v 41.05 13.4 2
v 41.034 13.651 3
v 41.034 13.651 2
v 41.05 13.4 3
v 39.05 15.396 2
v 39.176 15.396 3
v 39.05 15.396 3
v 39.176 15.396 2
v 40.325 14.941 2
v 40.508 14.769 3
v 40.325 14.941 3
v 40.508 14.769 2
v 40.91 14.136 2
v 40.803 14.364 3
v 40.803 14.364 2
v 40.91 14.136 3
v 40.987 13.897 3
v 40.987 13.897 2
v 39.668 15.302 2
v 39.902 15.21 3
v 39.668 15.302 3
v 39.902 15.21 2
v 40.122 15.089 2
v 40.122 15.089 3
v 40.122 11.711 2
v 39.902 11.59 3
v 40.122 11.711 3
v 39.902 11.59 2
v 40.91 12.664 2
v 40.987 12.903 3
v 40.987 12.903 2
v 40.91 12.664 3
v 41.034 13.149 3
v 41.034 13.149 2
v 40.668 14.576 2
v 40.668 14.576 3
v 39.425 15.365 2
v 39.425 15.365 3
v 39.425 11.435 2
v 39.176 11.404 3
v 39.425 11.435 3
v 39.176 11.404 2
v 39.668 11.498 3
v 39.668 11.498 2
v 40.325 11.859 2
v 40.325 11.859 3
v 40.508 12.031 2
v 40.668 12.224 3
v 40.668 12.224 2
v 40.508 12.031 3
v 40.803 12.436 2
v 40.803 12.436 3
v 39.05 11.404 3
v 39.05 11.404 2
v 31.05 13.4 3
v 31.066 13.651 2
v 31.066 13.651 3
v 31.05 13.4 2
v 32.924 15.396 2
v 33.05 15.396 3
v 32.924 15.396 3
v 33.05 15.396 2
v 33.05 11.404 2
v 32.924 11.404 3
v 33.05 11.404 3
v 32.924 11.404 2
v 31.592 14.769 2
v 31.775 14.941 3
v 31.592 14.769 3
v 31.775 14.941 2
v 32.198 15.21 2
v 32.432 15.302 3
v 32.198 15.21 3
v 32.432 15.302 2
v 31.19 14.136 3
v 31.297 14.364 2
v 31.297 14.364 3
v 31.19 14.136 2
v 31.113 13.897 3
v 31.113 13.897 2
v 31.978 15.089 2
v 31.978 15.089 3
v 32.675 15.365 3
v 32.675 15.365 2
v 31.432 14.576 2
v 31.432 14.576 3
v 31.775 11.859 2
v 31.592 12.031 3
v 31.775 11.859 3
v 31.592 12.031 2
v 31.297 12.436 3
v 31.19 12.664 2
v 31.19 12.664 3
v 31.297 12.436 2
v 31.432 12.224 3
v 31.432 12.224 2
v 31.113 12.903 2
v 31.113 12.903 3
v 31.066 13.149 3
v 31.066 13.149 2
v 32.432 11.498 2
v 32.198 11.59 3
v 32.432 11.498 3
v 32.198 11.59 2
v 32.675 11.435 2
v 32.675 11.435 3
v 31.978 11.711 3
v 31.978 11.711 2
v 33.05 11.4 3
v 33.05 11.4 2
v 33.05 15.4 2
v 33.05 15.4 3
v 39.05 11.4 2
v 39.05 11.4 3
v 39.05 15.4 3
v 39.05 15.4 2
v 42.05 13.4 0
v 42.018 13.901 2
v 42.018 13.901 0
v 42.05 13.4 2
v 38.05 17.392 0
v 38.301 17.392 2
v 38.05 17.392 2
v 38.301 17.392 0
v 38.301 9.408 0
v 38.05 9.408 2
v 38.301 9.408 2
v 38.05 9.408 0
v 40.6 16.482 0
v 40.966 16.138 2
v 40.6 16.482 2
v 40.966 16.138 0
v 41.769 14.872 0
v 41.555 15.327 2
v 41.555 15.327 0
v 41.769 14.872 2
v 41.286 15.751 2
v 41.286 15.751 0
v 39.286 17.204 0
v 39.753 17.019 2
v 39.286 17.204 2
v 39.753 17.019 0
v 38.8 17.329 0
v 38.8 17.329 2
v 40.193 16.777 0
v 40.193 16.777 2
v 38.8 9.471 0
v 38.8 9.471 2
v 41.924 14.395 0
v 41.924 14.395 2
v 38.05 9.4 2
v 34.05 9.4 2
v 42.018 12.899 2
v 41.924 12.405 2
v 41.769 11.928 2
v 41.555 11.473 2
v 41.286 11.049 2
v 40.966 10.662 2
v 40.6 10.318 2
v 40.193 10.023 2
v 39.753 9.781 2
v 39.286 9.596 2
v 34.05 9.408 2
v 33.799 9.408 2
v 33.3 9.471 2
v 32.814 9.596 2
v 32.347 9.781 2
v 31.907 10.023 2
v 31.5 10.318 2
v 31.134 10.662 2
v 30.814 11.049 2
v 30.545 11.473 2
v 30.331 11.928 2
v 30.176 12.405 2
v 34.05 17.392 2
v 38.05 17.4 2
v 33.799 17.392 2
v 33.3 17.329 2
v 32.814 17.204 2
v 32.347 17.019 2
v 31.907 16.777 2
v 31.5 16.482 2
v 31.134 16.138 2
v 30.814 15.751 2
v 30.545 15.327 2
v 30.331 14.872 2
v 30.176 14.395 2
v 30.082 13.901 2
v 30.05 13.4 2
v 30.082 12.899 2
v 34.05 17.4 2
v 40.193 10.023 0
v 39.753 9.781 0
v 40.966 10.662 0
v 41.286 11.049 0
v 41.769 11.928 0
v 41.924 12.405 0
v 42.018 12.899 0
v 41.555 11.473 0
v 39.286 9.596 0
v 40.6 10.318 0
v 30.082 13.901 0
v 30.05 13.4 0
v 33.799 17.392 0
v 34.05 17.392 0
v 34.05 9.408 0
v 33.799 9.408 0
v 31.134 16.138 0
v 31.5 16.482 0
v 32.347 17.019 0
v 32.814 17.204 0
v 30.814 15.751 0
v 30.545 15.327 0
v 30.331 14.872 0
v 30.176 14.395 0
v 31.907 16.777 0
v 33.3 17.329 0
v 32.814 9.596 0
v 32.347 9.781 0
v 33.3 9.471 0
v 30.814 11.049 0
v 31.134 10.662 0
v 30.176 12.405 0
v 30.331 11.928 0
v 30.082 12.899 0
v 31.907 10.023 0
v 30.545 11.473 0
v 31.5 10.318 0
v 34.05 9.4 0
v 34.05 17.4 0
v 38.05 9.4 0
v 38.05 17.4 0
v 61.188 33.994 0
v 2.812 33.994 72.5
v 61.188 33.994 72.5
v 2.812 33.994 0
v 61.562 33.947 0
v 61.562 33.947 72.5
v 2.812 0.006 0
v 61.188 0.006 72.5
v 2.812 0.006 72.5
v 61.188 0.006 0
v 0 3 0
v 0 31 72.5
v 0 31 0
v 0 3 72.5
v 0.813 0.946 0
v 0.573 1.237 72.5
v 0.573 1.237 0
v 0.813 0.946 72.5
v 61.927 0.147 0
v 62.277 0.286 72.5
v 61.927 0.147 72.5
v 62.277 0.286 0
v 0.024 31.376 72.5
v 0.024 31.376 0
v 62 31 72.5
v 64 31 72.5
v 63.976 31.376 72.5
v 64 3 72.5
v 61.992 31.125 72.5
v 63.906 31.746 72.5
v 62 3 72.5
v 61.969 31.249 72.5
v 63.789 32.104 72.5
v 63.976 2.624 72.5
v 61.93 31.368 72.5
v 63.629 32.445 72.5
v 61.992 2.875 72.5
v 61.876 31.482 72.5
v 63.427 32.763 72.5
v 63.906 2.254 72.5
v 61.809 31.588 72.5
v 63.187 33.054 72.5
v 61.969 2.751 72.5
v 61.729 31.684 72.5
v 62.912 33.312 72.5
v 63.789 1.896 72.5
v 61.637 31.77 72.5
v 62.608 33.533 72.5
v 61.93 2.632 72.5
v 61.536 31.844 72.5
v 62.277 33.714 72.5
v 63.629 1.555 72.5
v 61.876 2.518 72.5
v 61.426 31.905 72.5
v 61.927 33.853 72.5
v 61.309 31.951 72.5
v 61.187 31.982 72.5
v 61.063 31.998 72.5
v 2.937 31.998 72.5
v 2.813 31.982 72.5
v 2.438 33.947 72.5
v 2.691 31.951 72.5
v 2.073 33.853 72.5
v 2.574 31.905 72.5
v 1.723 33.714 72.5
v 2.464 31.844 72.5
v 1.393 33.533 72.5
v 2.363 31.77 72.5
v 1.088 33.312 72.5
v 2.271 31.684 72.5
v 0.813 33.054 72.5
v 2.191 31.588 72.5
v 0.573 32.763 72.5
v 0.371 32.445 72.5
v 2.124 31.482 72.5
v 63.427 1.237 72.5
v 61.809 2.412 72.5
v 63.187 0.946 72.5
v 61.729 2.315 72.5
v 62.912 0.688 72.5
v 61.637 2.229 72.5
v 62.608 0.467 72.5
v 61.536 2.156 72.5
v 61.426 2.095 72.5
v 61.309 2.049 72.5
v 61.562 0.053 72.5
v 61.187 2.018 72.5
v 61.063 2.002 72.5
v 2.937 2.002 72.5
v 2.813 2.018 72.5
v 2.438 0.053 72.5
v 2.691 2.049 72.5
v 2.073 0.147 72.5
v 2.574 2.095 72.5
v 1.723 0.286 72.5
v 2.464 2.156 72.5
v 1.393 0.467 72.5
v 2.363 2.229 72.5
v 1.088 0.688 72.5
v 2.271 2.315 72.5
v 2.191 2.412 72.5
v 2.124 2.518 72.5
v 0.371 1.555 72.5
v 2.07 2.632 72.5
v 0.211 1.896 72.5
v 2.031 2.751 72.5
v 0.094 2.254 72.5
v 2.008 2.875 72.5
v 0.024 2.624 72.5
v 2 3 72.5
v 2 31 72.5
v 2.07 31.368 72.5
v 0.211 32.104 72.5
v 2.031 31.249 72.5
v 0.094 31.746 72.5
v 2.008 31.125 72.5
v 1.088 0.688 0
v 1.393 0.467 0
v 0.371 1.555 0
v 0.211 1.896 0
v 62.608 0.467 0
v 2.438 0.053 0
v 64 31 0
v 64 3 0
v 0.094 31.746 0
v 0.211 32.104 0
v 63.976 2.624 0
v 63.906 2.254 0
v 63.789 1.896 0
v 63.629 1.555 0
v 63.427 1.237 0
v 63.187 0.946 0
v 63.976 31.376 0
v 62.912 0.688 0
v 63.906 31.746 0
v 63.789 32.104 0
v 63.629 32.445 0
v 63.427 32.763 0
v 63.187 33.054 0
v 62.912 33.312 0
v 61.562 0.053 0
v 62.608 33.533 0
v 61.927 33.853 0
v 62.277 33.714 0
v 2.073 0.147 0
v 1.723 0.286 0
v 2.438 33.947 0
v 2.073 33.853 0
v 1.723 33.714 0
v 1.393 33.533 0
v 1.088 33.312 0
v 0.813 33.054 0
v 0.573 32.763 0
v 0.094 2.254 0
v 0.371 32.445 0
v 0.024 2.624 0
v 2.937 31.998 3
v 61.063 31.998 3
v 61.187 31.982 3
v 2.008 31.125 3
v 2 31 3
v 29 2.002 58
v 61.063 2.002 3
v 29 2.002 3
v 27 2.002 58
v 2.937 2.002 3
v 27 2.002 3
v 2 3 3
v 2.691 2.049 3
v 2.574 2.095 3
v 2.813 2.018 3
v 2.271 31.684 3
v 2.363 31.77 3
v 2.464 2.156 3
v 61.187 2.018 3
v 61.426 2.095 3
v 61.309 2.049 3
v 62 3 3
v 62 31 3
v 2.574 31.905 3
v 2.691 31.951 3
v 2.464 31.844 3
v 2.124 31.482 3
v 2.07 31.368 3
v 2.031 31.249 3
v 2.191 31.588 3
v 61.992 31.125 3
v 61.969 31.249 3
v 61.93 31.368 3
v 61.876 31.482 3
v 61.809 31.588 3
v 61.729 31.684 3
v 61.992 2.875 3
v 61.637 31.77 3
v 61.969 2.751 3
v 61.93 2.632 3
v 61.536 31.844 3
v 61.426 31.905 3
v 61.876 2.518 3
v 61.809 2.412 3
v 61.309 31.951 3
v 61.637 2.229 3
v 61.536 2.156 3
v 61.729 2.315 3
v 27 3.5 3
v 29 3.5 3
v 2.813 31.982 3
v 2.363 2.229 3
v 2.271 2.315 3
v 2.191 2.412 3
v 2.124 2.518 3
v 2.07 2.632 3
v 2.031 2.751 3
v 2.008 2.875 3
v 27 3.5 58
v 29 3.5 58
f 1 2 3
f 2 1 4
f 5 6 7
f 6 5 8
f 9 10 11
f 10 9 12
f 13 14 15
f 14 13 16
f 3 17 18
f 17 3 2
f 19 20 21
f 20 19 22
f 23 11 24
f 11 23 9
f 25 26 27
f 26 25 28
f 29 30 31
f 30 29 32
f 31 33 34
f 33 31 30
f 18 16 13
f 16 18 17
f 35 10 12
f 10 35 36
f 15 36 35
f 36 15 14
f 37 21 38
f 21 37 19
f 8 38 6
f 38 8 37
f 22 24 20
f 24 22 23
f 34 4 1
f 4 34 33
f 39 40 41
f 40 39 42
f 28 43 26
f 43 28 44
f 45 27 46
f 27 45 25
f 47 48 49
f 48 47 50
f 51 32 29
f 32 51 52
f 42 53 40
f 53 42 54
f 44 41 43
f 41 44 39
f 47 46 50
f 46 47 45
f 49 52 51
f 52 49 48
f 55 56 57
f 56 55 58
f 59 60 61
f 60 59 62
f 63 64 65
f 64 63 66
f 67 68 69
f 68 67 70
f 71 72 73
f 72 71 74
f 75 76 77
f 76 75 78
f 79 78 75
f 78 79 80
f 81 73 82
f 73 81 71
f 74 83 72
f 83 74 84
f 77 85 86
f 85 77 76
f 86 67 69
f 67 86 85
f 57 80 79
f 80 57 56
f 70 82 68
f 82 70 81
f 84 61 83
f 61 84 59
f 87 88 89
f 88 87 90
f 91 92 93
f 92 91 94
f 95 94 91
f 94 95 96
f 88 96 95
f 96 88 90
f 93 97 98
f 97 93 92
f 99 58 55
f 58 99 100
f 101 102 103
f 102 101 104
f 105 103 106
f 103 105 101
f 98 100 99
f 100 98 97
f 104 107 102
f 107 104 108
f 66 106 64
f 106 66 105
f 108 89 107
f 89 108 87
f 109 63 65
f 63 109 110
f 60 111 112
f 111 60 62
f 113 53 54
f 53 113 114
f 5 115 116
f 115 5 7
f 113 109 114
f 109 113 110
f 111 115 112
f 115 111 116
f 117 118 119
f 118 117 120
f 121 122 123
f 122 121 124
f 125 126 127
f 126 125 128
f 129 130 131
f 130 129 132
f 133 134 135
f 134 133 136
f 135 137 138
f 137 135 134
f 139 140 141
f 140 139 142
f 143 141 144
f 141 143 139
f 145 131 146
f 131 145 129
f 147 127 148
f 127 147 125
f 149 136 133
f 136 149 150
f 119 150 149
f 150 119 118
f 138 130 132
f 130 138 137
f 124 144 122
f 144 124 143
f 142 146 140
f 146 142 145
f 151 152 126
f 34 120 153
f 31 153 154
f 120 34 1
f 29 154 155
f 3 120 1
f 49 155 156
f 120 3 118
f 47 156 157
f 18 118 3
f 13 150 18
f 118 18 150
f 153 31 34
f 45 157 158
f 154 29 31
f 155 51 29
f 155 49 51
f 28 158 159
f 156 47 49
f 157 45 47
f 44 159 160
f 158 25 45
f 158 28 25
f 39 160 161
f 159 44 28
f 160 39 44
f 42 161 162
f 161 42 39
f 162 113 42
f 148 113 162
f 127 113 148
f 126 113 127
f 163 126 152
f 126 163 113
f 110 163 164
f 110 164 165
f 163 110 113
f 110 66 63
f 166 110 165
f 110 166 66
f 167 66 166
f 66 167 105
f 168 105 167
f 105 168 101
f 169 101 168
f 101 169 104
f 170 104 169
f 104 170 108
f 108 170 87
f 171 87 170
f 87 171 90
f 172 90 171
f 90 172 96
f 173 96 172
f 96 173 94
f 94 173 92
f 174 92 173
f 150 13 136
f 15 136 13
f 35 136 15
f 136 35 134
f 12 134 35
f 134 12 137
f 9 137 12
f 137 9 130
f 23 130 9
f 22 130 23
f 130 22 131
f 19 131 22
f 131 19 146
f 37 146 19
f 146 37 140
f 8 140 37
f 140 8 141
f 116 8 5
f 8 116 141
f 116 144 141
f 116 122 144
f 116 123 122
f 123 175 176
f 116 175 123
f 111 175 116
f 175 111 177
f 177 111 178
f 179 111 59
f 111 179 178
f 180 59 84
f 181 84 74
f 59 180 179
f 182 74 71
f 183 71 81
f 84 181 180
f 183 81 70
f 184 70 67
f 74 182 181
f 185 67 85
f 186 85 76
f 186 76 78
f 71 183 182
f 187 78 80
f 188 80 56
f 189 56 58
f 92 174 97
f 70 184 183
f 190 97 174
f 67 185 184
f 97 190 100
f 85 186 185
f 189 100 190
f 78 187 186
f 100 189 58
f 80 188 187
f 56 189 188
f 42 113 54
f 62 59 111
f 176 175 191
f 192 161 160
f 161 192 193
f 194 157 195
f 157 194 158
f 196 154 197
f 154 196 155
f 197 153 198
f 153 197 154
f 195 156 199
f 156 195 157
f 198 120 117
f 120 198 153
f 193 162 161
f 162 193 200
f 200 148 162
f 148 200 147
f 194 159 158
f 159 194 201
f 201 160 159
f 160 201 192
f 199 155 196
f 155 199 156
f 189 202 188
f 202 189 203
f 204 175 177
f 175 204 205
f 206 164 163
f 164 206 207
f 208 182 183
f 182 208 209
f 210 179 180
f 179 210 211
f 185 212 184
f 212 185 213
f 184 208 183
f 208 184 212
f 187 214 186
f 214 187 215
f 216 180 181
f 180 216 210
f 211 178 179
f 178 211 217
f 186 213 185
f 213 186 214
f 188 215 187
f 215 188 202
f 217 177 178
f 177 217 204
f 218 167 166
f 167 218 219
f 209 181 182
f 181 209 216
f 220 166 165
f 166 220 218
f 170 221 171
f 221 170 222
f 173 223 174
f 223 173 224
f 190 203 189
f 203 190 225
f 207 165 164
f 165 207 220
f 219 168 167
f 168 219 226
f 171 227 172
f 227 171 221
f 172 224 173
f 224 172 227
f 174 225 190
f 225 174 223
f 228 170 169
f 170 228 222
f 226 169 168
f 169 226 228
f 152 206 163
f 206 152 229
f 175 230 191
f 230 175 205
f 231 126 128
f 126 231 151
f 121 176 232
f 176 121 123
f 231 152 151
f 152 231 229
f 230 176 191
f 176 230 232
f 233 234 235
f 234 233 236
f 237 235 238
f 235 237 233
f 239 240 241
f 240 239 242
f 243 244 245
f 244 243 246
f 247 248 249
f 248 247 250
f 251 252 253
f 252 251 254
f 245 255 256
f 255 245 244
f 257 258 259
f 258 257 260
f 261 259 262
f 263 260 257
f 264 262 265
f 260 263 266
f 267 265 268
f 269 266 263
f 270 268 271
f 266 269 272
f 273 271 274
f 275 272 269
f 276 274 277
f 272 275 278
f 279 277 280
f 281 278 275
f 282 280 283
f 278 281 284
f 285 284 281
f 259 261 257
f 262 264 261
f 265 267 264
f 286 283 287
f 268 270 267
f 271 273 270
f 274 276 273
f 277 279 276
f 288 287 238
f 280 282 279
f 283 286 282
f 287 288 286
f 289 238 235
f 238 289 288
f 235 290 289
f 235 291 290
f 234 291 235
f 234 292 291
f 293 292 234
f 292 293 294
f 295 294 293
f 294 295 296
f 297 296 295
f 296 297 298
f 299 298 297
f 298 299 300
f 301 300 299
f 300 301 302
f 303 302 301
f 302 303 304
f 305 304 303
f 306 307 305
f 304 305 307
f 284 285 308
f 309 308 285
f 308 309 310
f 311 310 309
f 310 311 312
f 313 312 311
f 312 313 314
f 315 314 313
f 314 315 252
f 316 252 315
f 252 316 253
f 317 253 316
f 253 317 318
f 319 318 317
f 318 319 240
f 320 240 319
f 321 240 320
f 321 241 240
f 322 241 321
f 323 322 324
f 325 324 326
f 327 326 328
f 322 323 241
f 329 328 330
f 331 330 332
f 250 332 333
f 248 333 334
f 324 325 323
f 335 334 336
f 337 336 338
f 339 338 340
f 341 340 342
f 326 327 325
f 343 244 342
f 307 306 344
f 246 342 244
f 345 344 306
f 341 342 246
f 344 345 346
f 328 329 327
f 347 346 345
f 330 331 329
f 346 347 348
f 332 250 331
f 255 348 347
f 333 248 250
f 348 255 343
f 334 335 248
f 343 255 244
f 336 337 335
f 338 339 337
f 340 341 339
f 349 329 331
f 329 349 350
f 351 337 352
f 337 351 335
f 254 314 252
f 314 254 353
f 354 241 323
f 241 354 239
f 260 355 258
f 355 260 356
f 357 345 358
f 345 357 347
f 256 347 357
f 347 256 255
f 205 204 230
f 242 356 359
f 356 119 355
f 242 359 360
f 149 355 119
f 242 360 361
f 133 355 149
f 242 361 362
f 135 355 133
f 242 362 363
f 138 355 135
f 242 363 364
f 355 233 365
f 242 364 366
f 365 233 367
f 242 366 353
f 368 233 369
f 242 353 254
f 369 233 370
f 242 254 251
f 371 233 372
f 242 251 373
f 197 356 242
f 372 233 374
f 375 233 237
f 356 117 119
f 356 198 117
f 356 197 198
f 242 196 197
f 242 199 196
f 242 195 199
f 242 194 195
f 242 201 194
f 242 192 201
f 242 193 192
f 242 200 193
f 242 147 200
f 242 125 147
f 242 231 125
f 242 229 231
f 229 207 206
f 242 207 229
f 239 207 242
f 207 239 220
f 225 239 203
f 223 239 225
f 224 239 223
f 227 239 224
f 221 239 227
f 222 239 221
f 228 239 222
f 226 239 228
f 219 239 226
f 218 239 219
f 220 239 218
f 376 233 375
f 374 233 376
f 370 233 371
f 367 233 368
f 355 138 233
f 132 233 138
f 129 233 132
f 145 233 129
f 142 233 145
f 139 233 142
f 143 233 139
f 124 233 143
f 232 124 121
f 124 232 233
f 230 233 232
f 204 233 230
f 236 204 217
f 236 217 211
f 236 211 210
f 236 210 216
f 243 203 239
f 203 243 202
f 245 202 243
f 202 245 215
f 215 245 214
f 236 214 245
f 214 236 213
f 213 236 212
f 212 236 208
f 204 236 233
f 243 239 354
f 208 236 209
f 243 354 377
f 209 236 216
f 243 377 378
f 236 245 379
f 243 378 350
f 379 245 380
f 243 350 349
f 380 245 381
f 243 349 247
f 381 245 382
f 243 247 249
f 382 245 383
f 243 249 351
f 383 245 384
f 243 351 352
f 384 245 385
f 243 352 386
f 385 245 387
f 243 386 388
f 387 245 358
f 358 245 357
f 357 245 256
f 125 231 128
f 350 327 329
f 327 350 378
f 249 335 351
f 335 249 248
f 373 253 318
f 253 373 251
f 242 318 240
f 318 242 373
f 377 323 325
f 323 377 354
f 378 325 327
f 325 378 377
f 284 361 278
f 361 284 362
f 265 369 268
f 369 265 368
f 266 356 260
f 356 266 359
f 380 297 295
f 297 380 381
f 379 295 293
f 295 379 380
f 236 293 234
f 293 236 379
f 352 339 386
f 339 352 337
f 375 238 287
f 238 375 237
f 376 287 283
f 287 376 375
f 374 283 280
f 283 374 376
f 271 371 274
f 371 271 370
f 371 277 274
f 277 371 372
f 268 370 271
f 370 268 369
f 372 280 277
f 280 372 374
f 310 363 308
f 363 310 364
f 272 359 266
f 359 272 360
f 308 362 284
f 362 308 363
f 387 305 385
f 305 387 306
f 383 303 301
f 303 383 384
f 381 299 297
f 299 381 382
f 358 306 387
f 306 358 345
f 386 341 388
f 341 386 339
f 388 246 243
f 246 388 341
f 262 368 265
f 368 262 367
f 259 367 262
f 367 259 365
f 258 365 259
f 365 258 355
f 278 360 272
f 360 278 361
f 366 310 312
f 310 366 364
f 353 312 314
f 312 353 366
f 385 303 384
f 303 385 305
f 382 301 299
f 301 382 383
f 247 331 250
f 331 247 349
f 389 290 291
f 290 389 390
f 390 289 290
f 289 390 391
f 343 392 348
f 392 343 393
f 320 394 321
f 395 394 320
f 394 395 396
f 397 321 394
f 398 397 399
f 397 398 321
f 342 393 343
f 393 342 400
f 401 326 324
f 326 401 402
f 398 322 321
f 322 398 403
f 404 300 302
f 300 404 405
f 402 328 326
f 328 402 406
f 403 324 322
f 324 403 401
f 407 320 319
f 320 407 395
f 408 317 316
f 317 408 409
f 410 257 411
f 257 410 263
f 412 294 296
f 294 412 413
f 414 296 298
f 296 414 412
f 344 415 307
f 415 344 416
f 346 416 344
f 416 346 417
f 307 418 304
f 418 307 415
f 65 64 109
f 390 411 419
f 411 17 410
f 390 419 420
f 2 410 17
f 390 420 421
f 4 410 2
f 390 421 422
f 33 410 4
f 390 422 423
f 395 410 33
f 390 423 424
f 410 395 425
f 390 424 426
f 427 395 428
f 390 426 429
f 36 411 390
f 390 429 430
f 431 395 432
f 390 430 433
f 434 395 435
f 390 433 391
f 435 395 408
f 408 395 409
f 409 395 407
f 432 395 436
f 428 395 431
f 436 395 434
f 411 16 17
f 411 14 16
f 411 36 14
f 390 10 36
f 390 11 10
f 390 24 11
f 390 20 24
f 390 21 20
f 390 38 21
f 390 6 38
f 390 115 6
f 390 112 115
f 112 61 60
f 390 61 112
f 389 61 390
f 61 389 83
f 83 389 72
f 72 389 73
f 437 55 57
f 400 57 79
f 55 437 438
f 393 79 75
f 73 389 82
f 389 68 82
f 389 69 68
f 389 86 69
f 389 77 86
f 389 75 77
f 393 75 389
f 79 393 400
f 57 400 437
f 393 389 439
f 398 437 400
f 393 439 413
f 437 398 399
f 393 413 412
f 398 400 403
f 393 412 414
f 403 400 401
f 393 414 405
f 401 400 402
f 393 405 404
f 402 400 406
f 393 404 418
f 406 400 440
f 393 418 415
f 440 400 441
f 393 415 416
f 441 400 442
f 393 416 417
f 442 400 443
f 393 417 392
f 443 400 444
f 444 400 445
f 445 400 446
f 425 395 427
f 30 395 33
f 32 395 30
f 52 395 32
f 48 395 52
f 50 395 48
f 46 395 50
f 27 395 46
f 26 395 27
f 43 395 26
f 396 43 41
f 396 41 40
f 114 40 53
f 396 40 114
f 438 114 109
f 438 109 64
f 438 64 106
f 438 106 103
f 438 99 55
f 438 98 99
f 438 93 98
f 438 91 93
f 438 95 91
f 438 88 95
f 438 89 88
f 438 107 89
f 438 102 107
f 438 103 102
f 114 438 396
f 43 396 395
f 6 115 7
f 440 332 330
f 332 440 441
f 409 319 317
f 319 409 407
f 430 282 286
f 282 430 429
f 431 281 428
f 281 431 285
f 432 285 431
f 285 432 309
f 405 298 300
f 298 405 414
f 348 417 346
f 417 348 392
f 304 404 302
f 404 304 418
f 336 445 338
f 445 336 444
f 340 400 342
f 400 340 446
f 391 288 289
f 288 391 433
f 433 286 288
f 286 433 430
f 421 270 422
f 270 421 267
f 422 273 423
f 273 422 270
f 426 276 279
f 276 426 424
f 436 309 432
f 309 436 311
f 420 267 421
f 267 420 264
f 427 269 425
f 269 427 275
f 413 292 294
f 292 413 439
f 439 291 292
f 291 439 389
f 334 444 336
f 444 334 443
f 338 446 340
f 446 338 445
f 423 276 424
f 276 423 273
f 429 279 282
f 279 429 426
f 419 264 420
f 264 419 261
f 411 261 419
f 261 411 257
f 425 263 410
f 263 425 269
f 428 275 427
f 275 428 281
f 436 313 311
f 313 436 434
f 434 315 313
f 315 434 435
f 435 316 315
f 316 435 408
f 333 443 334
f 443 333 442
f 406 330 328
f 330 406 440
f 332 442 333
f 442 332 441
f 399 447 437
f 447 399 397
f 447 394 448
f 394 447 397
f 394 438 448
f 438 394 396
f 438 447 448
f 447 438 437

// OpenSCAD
// Simple Cover for the Iridium Beacon with USB opening

$fn=50; // fragments
wall = 2.0; // wall thickness
end_wall = 3.0; // end wall thickness
internal_width = 60.0; // internal width (X) of the cover
internal_depth = 30.0; // internal depth (Y) of the cover
internal_height = 68.5; // internal height (Z) of the cover
lid_insert = 1.0; // extra height for the lid insert

internal_corner_radius = 1.0; // radius of the internal corner cylinder

support_x_offset = -4.0; // x offset of the support w.r.t. the X center of the void
support_width = 2.0; // x width of the support
support_depth = 1.5; // y depth of the support
support_height = 55.0; // z height of the support

usb_r = 2.0; // radius of the opening for the USB connector
usb_width = 10.0; // total width of the opening for the USB
usb_height = 1.0; // thickness of the opening for the USB connector
usb_recess_r = 4.0; // radius of the recess for the USB connector body
usb_recess_width = 12.0; // total width of the recess for the USB connector body
usb_x_offset = 4.05; // X offset of the USB connector
usb_y_offset = 3.6; // y offset of the USB connector

height = internal_height + end_wall + lid_insert; // cover external height (Z)
width = internal_width + (2 * wall); // cover external width (X)
depth = internal_depth + (2 * wall); // cover external depth (Y)

external_corner_radius = internal_corner_radius + wall; // external corner radius

module cover()
{
    translate([external_corner_radius, external_corner_radius, 0])
        minkowski() {
            cube([(width - (2 * external_corner_radius)), (depth - (2 * external_corner_radius)), (height / 2)]);
            cylinder(h=(height / 2), r=external_corner_radius);
        }
}

module void()
// Void will be higher than required to avoid zero thickness skin across opening
{
    translate([external_corner_radius, external_corner_radius, end_wall])
        minkowski() {
            cube([(internal_width - (2 * internal_corner_radius)), (internal_depth - (2 * internal_corner_radius)), (height / 2)]);
            cylinder(h=(height / 2), r=internal_corner_radius);
        }
}

module usb_opening_end_1()
// Cylinder is taller than it needs to be to avoid zero thickness skins
{
    translate([((usb_width / 2) - usb_r),0,usb_height]) {
        cylinder(h=end_wall,r=usb_r);
    }
}

module usb_opening_end_2()
// Cylinder is taller than it needs to be to avoid zero thickness skins
{
    translate([(0-((usb_width / 2) - usb_r)),0,usb_height]) {
        cylinder(h=end_wall,r=usb_r);
    }
}

module usb_opening_mid()
// Cube is taller than it needs to be to avoid zero thickness skins
{
    translate([(-0.5 * (usb_width - (2 * usb_r))), (-0.5 * (2 * usb_r)), usb_height]) {
        cube([(usb_width - (2 * usb_r)), (2 * usb_r), end_wall]);
    }
}

module usb_recess_end_1()
// Cylinder is taller than it needs to be to avoid zero thickness skins
{
    translate([((usb_recess_width / 2) - usb_recess_r), 0, (0 - usb_height)]) {
        cylinder(h=end_wall, r=usb_recess_r);
    }
}

module usb_recess_end_2()
// Cylinder is taller than it needs to be to avoid zero thickness skins
{
    translate([(0-((usb_recess_width / 2) - usb_recess_r)), 0, (0 - usb_height)]) {
        cylinder(h=end_wall, r=usb_recess_r);
    }
}

module usb_recess_mid()
// Cube is taller than it needs to be to avoid zero thickness skins
{
    translate([(-0.5 * (usb_recess_width - (2 * usb_recess_r))), (-0.5 * (2 * usb_recess_r)), (0 - usb_height)]) {
        cube([(usb_recess_width - (2 * usb_recess_r)), (2 * usb_recess_r), end_wall]);
    }
}

module usb()
{
    translate([((width / 2) + usb_x_offset), ((depth / 2) - usb_y_offset), 0]) {
        union() {
            usb_opening_end_1();
            usb_opening_end_2();
            usb_opening_mid();
            usb_recess_end_1();
            usb_recess_end_2();
            usb_recess_mid();
        }
    }
}

module support()
{
    translate([((width / 2) + support_x_offset - (support_width / 2)),wall, 0]) {
        cube([support_width, support_depth, (support_height + end_wall)]);
    }
}

module finished_cover()
{
    union() {
        difference() {
            cover();
            void();
            usb();
        }
        support();
    }
}

finished_cover();
